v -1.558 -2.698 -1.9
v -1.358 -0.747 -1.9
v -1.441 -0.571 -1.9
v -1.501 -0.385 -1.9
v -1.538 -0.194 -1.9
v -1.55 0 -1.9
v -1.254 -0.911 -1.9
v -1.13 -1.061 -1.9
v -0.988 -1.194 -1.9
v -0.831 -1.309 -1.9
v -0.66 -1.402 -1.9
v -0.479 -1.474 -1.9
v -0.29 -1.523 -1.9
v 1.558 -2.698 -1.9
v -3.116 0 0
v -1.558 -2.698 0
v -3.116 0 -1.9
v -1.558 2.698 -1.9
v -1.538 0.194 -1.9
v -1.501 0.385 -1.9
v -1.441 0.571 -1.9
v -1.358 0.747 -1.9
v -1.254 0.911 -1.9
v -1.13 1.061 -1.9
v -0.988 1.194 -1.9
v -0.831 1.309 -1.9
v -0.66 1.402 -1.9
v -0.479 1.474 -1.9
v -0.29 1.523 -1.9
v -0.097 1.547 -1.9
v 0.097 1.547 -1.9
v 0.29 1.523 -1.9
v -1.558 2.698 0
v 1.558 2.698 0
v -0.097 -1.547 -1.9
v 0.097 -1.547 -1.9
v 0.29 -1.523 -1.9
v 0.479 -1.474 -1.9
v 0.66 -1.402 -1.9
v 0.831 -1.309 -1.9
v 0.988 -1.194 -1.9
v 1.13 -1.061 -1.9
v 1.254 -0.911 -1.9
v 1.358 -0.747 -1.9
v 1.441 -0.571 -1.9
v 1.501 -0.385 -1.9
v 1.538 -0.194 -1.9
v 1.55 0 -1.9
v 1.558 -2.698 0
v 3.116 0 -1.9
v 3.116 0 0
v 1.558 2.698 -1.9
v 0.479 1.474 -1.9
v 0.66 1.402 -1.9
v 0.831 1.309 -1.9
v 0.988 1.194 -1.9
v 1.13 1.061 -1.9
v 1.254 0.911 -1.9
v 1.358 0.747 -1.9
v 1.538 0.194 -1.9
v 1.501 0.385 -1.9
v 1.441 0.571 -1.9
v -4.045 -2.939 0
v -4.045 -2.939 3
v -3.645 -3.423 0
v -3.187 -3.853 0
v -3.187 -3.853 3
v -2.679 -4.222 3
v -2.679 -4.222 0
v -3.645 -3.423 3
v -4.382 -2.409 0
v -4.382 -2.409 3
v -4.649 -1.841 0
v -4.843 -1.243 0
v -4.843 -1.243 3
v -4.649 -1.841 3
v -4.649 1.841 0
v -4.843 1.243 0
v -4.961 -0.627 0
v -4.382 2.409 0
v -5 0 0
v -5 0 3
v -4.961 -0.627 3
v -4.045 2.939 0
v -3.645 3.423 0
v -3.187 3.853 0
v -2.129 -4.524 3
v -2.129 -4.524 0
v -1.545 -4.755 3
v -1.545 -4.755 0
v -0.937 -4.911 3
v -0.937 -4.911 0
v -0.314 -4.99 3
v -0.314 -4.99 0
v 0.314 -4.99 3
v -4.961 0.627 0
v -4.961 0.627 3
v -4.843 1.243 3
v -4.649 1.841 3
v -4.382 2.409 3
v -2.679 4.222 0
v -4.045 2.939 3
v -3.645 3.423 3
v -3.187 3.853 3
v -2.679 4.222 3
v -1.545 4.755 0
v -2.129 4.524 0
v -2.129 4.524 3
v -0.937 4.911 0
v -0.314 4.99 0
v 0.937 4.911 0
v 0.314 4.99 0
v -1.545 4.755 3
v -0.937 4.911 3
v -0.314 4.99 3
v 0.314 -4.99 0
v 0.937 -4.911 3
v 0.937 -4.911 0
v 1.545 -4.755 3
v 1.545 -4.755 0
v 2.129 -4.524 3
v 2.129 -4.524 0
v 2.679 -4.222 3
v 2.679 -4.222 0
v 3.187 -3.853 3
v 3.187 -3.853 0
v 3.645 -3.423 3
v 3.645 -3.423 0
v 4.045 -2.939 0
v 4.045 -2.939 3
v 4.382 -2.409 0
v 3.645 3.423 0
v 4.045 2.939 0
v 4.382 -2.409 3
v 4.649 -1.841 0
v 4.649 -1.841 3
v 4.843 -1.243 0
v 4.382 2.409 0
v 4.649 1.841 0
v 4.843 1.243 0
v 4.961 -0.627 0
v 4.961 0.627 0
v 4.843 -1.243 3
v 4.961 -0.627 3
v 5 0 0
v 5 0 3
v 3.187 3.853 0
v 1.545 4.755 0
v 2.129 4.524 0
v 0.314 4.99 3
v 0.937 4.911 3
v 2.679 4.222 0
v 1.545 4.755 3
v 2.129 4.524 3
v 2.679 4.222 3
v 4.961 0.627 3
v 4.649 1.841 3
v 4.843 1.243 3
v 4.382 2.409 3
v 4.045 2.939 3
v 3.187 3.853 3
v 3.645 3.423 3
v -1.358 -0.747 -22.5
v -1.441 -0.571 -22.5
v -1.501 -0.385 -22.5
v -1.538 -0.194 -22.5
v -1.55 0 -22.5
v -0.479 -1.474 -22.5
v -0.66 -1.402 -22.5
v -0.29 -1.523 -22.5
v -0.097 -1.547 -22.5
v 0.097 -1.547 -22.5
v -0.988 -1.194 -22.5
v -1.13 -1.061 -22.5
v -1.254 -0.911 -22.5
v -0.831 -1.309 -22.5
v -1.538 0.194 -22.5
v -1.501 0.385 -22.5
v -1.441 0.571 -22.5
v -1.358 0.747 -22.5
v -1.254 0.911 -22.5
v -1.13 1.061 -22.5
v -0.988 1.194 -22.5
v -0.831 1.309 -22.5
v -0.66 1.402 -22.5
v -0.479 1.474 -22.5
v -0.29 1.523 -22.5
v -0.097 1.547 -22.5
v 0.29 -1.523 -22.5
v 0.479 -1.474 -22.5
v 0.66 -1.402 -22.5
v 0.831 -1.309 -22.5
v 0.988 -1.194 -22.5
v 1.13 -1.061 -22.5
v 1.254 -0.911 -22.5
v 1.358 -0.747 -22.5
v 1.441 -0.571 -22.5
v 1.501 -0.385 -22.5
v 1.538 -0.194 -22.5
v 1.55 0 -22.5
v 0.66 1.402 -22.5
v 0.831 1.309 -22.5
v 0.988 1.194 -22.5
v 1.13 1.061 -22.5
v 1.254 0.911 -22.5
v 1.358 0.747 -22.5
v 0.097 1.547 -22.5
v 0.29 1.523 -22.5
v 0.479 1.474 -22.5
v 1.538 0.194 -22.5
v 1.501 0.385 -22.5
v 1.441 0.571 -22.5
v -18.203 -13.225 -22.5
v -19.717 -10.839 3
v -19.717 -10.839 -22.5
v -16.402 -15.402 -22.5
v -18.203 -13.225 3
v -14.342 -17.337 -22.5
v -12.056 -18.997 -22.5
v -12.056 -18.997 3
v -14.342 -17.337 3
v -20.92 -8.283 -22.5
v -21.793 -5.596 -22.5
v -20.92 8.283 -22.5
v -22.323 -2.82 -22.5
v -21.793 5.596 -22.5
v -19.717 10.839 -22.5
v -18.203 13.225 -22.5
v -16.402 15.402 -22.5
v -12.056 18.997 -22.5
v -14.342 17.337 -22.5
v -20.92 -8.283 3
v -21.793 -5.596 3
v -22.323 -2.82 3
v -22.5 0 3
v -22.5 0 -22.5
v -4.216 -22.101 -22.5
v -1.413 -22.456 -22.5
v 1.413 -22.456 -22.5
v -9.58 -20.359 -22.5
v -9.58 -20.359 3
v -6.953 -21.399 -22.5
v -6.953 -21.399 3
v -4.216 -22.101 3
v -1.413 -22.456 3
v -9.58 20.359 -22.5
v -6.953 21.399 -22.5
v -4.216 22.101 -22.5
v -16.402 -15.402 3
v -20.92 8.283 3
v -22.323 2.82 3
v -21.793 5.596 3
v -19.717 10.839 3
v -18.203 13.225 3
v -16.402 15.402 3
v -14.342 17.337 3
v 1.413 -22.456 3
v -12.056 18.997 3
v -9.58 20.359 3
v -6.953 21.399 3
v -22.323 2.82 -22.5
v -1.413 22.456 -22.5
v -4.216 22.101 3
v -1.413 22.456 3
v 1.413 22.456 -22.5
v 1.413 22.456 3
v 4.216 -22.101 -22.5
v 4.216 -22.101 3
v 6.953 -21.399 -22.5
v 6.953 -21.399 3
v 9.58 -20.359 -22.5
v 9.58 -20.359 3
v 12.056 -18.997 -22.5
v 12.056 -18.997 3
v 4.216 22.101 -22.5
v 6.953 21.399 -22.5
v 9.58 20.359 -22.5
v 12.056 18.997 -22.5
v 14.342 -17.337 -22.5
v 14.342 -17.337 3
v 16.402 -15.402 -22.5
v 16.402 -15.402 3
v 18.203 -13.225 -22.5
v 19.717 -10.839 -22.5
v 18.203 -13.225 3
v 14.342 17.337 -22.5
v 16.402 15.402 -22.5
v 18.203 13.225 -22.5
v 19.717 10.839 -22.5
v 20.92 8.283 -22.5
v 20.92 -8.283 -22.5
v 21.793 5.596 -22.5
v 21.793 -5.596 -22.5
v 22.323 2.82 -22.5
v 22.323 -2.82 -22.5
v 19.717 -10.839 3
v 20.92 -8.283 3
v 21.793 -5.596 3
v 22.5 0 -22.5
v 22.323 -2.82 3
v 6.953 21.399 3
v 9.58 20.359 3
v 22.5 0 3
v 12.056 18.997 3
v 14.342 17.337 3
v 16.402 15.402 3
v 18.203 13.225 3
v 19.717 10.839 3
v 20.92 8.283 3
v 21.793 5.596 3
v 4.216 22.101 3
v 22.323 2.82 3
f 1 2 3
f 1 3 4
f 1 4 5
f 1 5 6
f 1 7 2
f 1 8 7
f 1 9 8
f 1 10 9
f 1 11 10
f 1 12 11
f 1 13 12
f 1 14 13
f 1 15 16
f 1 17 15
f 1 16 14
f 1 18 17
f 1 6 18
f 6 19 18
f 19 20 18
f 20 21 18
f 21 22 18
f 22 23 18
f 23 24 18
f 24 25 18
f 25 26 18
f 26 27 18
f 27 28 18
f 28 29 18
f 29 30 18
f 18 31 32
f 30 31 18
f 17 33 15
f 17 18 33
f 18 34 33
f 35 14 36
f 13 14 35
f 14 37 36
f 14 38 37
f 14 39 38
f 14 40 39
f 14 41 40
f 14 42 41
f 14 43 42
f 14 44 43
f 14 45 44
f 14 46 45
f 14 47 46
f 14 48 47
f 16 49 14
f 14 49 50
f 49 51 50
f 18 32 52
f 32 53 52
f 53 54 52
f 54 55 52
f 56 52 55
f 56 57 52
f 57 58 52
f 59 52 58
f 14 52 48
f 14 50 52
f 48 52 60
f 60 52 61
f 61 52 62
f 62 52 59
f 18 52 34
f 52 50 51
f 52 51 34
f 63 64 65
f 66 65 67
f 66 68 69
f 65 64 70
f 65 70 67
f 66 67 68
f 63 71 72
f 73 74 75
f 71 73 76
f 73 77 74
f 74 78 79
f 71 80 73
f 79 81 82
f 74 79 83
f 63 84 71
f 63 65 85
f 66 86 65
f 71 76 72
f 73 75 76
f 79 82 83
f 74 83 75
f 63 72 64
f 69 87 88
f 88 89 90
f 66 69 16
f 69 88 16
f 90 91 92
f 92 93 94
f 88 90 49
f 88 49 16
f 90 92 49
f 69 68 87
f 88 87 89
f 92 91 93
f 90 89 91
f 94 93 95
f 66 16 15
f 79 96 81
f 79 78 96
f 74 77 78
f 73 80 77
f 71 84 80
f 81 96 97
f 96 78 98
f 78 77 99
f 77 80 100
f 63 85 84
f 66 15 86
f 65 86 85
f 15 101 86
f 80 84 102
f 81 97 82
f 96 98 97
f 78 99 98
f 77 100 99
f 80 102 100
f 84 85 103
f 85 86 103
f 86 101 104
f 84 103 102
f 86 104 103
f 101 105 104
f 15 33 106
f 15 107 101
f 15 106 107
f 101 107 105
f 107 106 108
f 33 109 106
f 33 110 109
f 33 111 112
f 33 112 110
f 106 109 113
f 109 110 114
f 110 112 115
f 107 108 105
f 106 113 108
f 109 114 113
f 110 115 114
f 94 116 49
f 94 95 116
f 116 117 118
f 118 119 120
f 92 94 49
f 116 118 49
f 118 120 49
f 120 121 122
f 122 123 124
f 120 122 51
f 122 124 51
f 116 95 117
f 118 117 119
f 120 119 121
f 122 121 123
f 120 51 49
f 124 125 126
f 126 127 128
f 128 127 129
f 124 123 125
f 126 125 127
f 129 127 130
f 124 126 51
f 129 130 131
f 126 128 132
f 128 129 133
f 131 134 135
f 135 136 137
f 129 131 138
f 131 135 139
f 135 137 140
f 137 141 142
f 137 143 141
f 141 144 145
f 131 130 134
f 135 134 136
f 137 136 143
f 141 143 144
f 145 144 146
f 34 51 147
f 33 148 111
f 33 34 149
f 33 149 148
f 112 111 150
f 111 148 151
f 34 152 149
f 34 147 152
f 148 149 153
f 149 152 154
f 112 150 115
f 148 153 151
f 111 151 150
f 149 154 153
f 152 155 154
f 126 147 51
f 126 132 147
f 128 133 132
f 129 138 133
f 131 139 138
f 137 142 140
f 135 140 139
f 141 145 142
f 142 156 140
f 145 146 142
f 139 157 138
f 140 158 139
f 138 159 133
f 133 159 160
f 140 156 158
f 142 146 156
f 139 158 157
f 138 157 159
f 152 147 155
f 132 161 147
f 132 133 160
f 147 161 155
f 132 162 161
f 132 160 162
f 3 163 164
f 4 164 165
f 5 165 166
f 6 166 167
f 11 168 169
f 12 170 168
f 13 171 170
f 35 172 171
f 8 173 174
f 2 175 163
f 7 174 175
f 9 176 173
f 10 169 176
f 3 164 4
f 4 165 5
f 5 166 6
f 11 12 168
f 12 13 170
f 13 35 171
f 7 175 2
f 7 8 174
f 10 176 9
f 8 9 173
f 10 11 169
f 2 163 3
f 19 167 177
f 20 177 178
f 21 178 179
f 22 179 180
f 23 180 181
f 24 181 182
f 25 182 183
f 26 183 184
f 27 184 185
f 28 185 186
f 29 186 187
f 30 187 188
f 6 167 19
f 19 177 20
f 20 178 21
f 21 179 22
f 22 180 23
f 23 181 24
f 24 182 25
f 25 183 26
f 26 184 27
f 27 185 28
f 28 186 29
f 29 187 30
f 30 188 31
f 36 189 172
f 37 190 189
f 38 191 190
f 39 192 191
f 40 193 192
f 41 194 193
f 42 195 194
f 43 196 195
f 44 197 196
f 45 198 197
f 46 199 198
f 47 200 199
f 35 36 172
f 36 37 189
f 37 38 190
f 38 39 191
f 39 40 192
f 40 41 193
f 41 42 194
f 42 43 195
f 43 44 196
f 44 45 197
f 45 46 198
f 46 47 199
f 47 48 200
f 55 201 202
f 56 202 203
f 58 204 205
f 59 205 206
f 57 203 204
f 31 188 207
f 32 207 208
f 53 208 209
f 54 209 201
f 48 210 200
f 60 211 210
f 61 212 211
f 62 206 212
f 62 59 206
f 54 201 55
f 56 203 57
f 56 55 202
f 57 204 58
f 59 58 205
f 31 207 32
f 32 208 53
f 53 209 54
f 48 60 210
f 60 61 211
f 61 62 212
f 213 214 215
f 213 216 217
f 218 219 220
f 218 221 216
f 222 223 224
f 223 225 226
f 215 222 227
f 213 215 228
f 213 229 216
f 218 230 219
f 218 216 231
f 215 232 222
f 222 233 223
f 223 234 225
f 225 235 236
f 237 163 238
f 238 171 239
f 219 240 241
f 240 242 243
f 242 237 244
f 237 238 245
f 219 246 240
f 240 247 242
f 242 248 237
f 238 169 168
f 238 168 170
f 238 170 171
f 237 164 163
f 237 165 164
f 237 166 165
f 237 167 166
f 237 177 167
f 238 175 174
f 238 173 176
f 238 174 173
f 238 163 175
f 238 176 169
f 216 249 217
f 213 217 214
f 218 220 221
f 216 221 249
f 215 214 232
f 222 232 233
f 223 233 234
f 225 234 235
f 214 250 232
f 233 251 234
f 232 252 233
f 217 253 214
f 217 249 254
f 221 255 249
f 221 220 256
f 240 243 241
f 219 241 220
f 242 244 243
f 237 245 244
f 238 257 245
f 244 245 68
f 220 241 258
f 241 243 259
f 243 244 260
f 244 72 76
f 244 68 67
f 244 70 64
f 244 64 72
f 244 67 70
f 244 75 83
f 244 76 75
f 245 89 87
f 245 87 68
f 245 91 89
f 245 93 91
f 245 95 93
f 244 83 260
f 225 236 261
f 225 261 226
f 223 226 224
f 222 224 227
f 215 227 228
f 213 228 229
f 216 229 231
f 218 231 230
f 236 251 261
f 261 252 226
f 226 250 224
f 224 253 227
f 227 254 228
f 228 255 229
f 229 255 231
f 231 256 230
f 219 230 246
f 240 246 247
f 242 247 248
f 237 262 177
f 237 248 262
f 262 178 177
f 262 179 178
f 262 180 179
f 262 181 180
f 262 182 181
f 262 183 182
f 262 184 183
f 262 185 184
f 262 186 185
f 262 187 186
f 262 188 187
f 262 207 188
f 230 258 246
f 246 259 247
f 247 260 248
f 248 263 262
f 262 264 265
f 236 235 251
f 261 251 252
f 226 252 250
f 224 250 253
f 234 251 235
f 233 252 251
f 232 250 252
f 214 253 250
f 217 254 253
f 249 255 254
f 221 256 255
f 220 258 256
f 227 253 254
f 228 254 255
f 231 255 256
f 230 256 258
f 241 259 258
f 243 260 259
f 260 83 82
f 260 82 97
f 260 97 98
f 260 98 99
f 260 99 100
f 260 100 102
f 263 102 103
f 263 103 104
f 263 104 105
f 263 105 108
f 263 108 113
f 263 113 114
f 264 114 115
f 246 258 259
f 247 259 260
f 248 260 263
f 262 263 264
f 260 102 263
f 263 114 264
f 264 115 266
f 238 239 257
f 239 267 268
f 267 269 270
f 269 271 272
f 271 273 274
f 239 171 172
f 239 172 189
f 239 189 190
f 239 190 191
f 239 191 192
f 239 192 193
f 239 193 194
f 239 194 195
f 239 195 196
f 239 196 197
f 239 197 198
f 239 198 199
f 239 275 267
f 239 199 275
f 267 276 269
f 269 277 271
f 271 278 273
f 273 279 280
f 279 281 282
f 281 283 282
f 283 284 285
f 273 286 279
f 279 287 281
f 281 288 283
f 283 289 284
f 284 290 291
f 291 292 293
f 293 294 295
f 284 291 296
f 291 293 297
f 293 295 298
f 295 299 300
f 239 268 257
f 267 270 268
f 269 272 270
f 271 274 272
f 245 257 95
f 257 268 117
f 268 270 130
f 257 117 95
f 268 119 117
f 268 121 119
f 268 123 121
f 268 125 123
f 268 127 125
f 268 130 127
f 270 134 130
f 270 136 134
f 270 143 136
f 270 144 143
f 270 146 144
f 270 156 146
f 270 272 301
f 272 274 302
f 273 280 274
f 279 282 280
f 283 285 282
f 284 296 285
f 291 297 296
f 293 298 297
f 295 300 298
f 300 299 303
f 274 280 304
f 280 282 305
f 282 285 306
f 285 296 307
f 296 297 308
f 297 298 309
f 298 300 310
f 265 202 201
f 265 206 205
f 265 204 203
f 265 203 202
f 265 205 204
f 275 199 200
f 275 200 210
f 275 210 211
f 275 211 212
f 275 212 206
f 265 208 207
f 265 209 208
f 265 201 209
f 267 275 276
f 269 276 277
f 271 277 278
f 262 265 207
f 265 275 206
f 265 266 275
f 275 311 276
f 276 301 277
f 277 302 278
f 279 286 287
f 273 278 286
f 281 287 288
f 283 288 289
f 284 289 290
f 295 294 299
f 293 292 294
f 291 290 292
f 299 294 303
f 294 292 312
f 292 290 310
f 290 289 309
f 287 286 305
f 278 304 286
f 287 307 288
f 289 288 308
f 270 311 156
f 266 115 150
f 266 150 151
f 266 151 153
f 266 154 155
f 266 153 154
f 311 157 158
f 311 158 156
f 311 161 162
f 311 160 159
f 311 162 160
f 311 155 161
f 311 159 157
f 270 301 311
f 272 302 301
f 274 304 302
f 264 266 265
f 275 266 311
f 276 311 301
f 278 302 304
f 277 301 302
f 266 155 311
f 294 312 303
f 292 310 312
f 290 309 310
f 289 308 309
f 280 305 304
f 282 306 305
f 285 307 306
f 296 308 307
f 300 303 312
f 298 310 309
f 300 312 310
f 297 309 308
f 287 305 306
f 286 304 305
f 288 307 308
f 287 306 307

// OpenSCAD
$fn = 50;

difference() {
	union() {
		translate(v = [0, 0, -22.5]) {
			cylinder(h = 25.5, r = 22.5);
		}
	}
	union() {
		translate(v = [0, 0, 0]) {
			rotate(a = [0, 0, 0]) {
				difference() {
					union() {
						translate(v = [0, 0, -1.9]) {
							linear_extrude(height = 1.9) {
								polygon(points = [[3.1158, 0.0], [1.5579000000000005, 2.698361953111554], [-1.5578999999999994, 2.6983619531115544], [-3.1158, 3.815754496783323e-16], [-1.5579000000000014, -2.6983619531115535], [1.557899999999998, -2.6983619531115552]]);
							}
						}
					}
					union();
				}
			}
		}
		#cylinder(h = 3, r = 5.0);
		#translate(v = [0, 0, -100.0]) {
			cylinder(h = 200, r = 1.55);
		}
	}
}
